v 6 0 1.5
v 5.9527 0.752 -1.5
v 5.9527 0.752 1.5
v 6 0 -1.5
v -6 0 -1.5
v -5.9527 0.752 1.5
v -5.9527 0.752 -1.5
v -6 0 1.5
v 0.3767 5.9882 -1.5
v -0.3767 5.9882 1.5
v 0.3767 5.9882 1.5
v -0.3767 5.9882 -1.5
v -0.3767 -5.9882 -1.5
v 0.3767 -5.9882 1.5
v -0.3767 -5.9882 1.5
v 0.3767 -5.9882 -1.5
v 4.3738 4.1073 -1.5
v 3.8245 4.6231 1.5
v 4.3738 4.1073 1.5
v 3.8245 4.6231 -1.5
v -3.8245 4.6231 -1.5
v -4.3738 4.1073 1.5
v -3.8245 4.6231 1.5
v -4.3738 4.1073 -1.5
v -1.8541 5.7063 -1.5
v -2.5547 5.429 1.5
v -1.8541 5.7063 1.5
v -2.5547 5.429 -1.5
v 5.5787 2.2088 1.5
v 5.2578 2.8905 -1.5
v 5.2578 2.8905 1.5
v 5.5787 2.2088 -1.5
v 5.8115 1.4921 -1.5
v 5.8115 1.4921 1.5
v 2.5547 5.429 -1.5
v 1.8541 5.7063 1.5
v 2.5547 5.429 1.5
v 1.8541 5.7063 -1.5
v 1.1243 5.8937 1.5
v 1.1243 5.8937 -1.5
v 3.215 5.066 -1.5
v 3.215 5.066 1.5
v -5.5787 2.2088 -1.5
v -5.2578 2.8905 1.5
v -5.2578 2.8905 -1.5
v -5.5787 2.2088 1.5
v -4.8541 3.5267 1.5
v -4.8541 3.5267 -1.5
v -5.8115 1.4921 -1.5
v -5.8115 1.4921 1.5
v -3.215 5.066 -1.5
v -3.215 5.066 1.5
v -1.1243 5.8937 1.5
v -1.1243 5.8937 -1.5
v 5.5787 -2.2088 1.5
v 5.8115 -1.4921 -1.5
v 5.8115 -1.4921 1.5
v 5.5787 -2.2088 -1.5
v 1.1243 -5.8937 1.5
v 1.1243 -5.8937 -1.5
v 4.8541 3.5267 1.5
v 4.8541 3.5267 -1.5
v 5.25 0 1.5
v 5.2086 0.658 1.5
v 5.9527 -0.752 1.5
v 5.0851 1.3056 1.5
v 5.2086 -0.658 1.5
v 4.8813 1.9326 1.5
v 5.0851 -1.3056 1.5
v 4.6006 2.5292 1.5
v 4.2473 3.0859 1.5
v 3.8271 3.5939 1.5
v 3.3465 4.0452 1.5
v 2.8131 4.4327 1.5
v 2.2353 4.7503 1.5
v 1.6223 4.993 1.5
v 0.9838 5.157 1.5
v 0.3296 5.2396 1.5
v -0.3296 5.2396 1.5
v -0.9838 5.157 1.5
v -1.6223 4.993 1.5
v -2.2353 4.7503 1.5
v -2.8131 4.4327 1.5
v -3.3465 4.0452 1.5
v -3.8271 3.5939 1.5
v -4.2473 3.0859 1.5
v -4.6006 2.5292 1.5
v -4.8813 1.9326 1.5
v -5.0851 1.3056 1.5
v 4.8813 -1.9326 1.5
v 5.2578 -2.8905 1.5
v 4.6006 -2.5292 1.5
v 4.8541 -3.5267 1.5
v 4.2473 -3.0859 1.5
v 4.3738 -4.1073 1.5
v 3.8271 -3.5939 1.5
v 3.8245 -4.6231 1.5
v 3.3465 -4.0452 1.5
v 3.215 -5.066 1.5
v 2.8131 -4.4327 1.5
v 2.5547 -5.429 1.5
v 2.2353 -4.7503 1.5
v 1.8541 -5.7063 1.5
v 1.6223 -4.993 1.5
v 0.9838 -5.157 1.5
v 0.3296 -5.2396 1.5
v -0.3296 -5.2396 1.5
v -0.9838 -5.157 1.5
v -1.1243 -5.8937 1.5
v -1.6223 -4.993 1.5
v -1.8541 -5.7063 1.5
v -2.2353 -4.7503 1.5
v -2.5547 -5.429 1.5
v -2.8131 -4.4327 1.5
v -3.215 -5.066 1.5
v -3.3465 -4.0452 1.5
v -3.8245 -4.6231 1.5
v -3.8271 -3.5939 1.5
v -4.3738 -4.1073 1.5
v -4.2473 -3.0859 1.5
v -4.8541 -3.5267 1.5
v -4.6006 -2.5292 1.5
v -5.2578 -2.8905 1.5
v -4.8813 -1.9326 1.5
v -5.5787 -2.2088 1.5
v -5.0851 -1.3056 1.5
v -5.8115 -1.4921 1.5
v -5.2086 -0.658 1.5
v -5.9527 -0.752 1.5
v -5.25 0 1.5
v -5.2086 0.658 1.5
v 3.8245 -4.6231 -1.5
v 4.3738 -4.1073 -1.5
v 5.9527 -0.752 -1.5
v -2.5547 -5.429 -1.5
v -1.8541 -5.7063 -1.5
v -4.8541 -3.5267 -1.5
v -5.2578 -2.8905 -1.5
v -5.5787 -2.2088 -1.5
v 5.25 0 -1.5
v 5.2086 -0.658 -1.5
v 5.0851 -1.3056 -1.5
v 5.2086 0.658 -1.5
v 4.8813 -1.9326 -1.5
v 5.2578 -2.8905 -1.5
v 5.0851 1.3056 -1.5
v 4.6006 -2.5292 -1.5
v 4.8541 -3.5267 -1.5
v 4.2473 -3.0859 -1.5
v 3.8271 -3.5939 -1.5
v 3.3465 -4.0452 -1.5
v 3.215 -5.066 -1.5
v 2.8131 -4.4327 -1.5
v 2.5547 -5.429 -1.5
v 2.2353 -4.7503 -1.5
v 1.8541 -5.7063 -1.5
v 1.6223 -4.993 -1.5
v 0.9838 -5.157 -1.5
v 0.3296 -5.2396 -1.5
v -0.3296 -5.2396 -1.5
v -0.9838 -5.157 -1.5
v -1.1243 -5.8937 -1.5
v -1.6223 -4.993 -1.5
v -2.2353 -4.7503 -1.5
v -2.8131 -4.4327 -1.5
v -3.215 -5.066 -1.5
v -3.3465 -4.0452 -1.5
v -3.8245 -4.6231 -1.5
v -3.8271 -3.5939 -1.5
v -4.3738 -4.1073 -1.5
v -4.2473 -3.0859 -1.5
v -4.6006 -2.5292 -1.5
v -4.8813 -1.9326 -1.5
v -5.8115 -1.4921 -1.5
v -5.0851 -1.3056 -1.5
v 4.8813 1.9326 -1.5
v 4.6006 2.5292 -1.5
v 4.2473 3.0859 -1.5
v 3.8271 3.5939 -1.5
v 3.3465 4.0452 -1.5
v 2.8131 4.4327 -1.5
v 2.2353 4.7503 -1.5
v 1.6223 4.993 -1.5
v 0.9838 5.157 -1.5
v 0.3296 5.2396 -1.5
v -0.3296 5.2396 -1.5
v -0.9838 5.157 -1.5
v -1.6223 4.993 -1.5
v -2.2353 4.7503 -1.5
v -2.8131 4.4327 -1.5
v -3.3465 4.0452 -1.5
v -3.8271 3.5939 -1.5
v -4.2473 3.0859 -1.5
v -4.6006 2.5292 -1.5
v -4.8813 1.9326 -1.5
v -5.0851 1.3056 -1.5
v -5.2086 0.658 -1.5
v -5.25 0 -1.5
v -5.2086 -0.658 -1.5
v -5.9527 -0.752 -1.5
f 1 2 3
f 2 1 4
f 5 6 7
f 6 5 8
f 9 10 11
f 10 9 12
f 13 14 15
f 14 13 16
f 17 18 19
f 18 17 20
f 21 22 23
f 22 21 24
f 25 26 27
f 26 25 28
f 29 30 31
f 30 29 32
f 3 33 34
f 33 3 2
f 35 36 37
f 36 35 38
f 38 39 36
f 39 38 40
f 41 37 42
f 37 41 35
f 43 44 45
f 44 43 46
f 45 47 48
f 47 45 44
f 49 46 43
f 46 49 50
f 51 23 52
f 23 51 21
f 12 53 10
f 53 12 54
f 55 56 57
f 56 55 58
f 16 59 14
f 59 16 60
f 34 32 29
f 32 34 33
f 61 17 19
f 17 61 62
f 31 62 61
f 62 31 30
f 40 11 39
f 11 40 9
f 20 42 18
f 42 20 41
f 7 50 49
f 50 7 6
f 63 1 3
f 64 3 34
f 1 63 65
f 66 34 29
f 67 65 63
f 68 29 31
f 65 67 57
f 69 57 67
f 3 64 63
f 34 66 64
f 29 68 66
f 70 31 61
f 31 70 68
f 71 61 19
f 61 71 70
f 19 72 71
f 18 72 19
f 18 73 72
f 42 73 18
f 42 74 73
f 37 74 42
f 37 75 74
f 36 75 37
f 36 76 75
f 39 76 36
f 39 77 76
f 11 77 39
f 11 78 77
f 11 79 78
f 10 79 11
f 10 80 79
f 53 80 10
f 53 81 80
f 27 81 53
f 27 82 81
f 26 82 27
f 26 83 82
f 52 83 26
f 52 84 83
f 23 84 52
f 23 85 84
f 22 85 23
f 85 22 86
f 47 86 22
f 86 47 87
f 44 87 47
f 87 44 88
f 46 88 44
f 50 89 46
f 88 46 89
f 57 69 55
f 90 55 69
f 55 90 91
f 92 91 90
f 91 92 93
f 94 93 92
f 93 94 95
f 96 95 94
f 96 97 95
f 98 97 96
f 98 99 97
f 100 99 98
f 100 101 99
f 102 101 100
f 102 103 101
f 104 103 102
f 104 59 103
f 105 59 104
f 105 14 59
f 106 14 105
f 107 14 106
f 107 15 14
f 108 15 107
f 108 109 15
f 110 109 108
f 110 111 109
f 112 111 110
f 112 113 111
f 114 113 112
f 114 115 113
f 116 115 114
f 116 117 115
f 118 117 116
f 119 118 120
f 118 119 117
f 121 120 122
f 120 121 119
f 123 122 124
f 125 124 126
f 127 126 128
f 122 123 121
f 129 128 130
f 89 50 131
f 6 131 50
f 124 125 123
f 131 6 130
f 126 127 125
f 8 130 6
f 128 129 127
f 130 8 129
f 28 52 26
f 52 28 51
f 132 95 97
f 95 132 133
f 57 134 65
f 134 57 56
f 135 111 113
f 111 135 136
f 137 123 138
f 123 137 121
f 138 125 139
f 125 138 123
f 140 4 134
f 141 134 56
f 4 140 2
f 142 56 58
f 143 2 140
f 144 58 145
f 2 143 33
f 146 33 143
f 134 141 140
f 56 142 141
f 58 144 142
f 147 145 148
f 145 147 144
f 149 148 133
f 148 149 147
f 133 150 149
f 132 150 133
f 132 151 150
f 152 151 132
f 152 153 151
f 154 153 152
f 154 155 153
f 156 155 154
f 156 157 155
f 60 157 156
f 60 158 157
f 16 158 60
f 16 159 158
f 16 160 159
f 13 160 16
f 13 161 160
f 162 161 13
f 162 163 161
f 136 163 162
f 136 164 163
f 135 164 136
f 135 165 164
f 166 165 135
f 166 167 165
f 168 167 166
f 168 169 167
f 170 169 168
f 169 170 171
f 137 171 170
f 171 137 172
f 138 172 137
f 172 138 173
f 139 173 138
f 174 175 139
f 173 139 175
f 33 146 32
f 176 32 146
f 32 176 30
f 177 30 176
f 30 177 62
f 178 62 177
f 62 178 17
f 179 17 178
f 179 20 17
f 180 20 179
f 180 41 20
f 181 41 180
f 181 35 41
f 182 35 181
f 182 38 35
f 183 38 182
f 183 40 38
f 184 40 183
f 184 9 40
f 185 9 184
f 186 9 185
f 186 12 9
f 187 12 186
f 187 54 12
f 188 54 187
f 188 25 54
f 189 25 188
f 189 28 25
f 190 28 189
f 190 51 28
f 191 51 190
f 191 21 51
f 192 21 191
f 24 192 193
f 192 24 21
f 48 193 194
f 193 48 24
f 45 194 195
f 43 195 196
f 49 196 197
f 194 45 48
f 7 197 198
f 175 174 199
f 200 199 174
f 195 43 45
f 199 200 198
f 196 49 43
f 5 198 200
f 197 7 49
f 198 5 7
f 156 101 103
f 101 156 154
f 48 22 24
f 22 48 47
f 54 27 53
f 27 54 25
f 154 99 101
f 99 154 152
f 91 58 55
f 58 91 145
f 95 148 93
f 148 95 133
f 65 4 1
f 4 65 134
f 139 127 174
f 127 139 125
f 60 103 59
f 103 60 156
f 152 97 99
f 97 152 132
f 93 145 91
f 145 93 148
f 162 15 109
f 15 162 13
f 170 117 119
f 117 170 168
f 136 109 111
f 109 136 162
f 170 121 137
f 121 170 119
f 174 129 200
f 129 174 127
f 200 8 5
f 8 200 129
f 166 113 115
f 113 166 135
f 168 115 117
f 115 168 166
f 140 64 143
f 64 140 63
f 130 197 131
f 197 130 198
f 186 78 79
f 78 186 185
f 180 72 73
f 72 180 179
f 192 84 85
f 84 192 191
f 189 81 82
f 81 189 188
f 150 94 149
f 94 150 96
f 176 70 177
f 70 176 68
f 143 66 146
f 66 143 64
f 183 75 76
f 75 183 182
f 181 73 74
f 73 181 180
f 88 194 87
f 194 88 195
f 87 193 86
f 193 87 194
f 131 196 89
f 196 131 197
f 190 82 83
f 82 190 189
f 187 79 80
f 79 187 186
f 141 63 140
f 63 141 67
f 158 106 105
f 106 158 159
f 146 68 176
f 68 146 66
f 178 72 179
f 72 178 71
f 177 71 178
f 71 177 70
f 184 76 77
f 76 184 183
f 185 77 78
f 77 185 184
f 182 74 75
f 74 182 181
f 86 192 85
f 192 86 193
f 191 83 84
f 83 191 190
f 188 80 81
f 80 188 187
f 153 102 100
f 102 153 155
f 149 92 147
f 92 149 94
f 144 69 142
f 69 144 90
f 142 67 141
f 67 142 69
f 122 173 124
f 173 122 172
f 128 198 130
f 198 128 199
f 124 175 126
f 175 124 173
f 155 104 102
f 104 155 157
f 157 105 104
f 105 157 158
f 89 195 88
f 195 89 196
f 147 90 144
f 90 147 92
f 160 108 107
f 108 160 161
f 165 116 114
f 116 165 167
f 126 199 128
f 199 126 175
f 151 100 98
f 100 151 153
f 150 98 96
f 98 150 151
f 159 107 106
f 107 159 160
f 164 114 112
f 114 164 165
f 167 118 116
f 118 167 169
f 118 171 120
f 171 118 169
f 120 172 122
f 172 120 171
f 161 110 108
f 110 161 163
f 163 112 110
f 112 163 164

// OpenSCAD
$fn = 50;


difference() {
	union() {
		translate(v = [0, 0, -1.5000000000]) {
			cylinder(h = 3, r = 6.0000000000);
		}
	}
	union() {
		translate(v = [0, 0, -100.0000000000]) {
			cylinder(h = 200, r = 5.2500000000);
		}
	}
}
